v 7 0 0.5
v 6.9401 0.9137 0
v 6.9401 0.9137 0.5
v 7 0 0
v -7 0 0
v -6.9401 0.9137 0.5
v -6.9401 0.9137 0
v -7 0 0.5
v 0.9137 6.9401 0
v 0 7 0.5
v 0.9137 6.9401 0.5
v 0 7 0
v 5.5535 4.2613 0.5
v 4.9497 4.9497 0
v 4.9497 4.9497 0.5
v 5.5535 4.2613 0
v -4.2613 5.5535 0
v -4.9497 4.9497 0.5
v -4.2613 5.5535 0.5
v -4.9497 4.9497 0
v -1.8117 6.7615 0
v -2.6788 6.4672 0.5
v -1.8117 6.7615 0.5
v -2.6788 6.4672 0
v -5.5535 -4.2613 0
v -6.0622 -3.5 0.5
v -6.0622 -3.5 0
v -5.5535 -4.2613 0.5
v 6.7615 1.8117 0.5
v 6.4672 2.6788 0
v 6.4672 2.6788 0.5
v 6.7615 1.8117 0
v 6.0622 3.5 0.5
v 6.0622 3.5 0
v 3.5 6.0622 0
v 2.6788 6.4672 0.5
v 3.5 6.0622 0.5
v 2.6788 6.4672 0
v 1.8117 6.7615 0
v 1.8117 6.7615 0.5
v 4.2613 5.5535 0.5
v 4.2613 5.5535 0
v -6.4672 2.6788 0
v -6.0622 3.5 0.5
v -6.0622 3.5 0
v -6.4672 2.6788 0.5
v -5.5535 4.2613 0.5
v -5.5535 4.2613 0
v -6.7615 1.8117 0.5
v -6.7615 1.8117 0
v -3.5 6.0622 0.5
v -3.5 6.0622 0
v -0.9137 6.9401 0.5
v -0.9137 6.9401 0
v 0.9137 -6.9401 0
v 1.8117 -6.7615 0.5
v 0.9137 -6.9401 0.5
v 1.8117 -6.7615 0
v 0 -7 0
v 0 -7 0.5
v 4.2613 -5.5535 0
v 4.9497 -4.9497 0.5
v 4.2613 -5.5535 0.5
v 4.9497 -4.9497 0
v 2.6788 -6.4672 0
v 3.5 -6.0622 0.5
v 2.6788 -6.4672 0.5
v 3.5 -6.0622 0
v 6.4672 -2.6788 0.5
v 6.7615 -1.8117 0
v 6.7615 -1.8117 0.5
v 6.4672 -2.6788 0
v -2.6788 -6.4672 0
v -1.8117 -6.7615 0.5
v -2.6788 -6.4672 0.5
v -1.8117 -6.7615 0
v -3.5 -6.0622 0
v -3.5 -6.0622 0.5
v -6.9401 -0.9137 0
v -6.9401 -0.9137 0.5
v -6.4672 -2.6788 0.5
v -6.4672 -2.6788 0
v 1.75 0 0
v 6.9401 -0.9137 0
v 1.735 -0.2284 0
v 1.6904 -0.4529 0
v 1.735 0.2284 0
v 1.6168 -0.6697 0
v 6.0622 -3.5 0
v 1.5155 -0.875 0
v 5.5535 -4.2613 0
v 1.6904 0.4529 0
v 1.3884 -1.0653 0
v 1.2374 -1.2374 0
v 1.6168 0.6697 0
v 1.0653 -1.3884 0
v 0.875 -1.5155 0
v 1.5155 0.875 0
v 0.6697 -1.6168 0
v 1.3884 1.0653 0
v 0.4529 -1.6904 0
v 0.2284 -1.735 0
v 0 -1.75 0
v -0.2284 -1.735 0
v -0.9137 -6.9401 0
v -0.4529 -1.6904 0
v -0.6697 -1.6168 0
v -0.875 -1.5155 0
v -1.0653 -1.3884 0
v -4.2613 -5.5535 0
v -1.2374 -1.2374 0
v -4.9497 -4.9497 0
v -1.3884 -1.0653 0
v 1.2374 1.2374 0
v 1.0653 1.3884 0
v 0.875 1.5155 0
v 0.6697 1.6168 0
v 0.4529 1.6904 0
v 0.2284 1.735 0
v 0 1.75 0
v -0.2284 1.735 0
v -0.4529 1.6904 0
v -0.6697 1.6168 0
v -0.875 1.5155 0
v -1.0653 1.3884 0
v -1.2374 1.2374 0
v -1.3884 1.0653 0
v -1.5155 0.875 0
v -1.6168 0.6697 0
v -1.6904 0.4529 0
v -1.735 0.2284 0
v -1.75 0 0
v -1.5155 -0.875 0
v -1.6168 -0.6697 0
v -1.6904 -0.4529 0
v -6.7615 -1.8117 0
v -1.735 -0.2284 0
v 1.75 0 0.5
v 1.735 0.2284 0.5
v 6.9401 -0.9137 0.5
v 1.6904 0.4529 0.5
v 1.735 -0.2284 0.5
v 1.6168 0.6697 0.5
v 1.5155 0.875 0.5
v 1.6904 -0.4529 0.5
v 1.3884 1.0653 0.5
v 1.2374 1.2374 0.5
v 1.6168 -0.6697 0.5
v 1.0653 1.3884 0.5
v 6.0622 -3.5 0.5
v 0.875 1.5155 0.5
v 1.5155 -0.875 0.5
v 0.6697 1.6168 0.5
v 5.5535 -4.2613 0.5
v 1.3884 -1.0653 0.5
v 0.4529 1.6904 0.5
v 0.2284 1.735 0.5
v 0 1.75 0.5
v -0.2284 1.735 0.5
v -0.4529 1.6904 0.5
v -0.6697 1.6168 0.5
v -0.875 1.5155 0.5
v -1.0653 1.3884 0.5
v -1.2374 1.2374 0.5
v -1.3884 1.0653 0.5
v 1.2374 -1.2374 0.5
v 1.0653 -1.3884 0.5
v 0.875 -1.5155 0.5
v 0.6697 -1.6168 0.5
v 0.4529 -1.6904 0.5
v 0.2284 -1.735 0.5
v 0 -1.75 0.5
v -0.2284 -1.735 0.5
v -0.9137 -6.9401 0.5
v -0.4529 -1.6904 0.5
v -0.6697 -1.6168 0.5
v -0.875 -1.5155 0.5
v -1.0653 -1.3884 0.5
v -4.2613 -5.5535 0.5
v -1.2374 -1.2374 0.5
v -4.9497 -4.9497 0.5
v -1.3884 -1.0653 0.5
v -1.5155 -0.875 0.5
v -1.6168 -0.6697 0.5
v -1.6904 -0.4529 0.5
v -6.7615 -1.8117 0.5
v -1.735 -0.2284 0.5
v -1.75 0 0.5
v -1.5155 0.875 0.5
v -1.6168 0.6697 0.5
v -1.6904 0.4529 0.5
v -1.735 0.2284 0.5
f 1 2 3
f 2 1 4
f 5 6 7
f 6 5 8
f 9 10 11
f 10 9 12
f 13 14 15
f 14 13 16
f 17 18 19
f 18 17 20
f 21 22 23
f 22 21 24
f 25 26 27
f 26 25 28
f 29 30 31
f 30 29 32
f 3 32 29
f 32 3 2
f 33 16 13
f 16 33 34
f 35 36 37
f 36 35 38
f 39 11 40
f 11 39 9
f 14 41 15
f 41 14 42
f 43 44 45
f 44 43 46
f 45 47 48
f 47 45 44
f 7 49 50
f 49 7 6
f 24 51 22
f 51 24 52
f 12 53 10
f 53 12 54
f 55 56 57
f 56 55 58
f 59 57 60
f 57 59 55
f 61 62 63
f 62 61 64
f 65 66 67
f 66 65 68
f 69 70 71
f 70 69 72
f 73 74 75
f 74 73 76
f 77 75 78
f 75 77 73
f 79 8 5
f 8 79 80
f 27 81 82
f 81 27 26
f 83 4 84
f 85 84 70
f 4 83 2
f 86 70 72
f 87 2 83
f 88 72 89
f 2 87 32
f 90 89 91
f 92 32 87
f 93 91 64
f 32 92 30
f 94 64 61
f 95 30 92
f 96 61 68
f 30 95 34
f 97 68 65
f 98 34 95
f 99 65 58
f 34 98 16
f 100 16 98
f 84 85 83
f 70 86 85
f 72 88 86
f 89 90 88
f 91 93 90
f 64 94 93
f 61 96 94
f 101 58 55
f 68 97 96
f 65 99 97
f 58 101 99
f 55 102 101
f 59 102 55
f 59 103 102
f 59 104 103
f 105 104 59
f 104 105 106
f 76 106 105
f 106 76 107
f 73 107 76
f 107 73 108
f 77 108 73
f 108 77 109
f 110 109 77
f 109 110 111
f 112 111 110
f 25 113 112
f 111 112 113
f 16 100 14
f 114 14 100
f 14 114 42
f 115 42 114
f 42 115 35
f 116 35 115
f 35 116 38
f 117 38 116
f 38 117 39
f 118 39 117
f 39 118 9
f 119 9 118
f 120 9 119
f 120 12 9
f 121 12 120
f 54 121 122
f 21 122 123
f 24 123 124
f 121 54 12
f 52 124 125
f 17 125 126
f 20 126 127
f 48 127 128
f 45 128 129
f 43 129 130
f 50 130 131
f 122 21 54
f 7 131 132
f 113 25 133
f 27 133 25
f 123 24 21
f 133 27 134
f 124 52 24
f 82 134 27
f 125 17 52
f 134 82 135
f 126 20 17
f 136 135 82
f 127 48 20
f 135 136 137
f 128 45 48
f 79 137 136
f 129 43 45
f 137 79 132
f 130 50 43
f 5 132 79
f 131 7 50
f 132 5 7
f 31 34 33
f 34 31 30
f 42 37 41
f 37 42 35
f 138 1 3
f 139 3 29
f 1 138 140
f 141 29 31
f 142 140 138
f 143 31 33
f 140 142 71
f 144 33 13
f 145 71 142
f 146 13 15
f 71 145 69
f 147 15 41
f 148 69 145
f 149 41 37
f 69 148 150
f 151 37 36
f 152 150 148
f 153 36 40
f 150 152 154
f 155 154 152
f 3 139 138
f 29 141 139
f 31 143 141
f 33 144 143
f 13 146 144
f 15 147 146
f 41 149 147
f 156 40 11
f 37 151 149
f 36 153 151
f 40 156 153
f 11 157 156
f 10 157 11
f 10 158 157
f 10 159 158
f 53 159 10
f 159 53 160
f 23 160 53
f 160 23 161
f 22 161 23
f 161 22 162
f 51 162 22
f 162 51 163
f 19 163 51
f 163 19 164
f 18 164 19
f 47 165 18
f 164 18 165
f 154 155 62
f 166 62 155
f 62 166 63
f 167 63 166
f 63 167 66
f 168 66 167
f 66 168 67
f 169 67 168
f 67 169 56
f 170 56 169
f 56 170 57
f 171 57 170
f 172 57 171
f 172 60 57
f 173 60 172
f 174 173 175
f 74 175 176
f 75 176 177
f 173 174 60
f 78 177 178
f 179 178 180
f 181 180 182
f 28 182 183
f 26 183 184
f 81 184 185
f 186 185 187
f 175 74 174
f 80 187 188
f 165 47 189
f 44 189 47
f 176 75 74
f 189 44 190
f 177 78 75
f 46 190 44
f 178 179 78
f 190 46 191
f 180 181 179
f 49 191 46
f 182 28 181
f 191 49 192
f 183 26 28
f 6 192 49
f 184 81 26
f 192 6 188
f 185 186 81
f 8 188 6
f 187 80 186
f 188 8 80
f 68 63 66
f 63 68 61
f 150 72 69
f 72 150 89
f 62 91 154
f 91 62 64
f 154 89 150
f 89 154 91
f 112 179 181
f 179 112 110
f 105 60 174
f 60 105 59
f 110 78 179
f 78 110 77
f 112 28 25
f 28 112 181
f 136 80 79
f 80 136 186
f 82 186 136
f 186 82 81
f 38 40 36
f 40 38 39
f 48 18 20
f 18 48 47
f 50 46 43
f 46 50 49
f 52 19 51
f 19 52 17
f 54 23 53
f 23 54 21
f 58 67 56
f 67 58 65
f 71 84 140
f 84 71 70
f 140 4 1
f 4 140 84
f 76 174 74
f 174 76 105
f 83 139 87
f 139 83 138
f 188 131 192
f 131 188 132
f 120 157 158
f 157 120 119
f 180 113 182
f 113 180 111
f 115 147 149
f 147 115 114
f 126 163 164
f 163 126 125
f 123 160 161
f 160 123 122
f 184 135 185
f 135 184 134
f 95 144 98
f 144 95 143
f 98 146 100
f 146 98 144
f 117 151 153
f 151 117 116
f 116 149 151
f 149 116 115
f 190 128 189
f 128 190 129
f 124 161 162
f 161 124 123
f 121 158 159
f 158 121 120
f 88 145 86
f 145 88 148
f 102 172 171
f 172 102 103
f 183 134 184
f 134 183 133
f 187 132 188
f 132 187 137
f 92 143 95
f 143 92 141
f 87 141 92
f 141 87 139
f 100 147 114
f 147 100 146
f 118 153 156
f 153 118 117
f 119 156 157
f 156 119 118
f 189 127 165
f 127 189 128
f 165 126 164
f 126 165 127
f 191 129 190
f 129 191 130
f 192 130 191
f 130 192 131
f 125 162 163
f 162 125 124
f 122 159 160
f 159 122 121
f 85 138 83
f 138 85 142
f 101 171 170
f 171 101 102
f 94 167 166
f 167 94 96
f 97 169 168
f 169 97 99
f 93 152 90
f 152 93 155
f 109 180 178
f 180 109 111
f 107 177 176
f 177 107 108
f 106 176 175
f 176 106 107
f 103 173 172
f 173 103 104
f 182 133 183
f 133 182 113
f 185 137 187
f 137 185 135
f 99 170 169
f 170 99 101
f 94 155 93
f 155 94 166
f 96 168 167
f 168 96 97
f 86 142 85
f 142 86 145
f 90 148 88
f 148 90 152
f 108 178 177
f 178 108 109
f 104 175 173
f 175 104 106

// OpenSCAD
// Gen-CT — assembly gap shim, h = run_clear (rotor face -> flange); copper is inside the flanges
include <parameters.scad>;
$fn = 48;
difference() {
    cylinder(d=spacer_pad_od, h=gap_spacer_h);
    translate([0, 0, -0.1]) cylinder(d=spacer_pad_id, h=gap_spacer_h + 0.2);
}
